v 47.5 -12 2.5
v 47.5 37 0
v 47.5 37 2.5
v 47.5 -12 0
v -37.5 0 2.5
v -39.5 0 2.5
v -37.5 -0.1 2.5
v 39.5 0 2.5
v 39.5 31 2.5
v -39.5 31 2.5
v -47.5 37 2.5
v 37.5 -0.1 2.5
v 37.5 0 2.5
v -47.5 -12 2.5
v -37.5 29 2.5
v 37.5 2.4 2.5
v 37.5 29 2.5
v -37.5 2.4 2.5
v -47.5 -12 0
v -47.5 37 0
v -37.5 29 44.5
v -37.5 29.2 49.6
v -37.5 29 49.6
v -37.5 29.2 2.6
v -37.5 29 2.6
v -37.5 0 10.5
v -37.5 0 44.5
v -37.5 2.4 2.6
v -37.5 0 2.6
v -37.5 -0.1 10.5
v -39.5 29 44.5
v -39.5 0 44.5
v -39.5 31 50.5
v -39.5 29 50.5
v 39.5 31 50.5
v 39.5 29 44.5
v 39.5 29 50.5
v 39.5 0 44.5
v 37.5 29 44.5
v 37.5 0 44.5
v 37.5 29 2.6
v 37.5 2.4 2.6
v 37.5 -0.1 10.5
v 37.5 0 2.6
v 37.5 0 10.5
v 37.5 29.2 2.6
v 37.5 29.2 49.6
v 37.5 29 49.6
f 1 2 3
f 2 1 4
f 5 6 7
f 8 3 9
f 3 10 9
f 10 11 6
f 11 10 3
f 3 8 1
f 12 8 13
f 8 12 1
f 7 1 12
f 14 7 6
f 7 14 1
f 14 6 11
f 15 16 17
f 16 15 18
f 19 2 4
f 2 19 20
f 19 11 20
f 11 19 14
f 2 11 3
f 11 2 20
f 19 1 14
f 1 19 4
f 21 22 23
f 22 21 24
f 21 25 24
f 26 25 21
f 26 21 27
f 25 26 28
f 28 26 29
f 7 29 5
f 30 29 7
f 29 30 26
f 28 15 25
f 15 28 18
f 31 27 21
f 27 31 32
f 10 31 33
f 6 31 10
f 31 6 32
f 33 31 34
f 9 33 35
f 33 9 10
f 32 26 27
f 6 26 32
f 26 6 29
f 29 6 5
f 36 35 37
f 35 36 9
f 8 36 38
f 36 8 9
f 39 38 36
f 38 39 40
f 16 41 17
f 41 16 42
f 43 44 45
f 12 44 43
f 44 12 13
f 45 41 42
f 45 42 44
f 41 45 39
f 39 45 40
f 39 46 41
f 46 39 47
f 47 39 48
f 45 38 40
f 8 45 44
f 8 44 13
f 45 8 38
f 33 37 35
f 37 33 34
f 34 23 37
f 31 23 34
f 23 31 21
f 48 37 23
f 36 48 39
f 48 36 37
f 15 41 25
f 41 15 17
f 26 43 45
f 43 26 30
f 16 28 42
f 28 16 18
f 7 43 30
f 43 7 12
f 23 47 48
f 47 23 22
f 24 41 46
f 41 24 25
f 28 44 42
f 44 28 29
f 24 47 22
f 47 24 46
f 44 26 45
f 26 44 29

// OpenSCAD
// EasyThreed K9 – Fiber Media Converter Vertical Stand/Holder
// Default sized for ~94-95 × 73-74 × 27 mm converters (e.g. TP-Link MC220L)
// Adjust the three converter_* values to match your device

/* [Converter dimensions] */
converter_length = 95;   // mm – front-to-back (ports usually on the short ends)
converter_width  = 74;   // mm – left-to-right
converter_height = 28;   // mm – thickness

/* [Clearances & walls] */
clearance        = 1.0;  // total play around the converter (0.8–1.2 recommended)
wall             = 2.0;  // wall thickness
base_thick       = 2.5;  // base plate thickness
lip_height       = 8;    // front retention lip
side_height      = 42;   // how high the side walls rise (grip height)
back_height      = 48;   // back plate height (slightly taller for stability)

/* [Base size] */
base_extra_front = 12;   // extra base in front of the cradle
base_extra_side  = 8;    // extra base on left/right for stability
base_extra_back  = 6;

// Calculated internal pocket
inner_w = converter_width  + clearance;
inner_d = converter_height + clearance;   // converter sits on its side (thickness = depth)
inner_l = converter_length + clearance;

// Overall outer size (stays safely under 98 mm)
outer_w = inner_w + 2*wall + 2*base_extra_side;
outer_d = inner_d + wall + base_extra_front + base_extra_back;
outer_h = max(side_height, back_height) + base_thick;

echo("Overall size (W×D×H):", outer_w, "×", outer_d, "×", outer_h);

// ---------- Model ----------
difference() {
    // Solid outer shape
    union() {
        // Base plate
        translate([-outer_w/2, -base_extra_front, 0])
            cube([outer_w, outer_d, base_thick]);

        // Left side wall
        translate([-inner_w/2 - wall, 0, base_thick])
            cube([wall, inner_d + wall, side_height]);

        // Right side wall
        translate([inner_w/2, 0, base_thick])
            cube([wall, inner_d + wall, side_height]);

        // Back wall
        translate([-inner_w/2 - wall, inner_d, base_thick])
            cube([inner_w + 2*wall, wall, back_height]);

        // Front retention lip (low)
        translate([-inner_w/2, -0.1, base_thick])
            cube([inner_w, 2.5, lip_height]);
    }

    // Hollow out the pocket (leave the lip)
    translate([-inner_w/2, 0, base_thick + 0.1])
        cube([inner_w, inner_d + 0.2, side_height + 5]);
}

// Optional: small cable-management notch on the front lip (comment out if not wanted)
// translate([-8, -1, base_thick + 2])
//     cube([16, 4, 6]);
